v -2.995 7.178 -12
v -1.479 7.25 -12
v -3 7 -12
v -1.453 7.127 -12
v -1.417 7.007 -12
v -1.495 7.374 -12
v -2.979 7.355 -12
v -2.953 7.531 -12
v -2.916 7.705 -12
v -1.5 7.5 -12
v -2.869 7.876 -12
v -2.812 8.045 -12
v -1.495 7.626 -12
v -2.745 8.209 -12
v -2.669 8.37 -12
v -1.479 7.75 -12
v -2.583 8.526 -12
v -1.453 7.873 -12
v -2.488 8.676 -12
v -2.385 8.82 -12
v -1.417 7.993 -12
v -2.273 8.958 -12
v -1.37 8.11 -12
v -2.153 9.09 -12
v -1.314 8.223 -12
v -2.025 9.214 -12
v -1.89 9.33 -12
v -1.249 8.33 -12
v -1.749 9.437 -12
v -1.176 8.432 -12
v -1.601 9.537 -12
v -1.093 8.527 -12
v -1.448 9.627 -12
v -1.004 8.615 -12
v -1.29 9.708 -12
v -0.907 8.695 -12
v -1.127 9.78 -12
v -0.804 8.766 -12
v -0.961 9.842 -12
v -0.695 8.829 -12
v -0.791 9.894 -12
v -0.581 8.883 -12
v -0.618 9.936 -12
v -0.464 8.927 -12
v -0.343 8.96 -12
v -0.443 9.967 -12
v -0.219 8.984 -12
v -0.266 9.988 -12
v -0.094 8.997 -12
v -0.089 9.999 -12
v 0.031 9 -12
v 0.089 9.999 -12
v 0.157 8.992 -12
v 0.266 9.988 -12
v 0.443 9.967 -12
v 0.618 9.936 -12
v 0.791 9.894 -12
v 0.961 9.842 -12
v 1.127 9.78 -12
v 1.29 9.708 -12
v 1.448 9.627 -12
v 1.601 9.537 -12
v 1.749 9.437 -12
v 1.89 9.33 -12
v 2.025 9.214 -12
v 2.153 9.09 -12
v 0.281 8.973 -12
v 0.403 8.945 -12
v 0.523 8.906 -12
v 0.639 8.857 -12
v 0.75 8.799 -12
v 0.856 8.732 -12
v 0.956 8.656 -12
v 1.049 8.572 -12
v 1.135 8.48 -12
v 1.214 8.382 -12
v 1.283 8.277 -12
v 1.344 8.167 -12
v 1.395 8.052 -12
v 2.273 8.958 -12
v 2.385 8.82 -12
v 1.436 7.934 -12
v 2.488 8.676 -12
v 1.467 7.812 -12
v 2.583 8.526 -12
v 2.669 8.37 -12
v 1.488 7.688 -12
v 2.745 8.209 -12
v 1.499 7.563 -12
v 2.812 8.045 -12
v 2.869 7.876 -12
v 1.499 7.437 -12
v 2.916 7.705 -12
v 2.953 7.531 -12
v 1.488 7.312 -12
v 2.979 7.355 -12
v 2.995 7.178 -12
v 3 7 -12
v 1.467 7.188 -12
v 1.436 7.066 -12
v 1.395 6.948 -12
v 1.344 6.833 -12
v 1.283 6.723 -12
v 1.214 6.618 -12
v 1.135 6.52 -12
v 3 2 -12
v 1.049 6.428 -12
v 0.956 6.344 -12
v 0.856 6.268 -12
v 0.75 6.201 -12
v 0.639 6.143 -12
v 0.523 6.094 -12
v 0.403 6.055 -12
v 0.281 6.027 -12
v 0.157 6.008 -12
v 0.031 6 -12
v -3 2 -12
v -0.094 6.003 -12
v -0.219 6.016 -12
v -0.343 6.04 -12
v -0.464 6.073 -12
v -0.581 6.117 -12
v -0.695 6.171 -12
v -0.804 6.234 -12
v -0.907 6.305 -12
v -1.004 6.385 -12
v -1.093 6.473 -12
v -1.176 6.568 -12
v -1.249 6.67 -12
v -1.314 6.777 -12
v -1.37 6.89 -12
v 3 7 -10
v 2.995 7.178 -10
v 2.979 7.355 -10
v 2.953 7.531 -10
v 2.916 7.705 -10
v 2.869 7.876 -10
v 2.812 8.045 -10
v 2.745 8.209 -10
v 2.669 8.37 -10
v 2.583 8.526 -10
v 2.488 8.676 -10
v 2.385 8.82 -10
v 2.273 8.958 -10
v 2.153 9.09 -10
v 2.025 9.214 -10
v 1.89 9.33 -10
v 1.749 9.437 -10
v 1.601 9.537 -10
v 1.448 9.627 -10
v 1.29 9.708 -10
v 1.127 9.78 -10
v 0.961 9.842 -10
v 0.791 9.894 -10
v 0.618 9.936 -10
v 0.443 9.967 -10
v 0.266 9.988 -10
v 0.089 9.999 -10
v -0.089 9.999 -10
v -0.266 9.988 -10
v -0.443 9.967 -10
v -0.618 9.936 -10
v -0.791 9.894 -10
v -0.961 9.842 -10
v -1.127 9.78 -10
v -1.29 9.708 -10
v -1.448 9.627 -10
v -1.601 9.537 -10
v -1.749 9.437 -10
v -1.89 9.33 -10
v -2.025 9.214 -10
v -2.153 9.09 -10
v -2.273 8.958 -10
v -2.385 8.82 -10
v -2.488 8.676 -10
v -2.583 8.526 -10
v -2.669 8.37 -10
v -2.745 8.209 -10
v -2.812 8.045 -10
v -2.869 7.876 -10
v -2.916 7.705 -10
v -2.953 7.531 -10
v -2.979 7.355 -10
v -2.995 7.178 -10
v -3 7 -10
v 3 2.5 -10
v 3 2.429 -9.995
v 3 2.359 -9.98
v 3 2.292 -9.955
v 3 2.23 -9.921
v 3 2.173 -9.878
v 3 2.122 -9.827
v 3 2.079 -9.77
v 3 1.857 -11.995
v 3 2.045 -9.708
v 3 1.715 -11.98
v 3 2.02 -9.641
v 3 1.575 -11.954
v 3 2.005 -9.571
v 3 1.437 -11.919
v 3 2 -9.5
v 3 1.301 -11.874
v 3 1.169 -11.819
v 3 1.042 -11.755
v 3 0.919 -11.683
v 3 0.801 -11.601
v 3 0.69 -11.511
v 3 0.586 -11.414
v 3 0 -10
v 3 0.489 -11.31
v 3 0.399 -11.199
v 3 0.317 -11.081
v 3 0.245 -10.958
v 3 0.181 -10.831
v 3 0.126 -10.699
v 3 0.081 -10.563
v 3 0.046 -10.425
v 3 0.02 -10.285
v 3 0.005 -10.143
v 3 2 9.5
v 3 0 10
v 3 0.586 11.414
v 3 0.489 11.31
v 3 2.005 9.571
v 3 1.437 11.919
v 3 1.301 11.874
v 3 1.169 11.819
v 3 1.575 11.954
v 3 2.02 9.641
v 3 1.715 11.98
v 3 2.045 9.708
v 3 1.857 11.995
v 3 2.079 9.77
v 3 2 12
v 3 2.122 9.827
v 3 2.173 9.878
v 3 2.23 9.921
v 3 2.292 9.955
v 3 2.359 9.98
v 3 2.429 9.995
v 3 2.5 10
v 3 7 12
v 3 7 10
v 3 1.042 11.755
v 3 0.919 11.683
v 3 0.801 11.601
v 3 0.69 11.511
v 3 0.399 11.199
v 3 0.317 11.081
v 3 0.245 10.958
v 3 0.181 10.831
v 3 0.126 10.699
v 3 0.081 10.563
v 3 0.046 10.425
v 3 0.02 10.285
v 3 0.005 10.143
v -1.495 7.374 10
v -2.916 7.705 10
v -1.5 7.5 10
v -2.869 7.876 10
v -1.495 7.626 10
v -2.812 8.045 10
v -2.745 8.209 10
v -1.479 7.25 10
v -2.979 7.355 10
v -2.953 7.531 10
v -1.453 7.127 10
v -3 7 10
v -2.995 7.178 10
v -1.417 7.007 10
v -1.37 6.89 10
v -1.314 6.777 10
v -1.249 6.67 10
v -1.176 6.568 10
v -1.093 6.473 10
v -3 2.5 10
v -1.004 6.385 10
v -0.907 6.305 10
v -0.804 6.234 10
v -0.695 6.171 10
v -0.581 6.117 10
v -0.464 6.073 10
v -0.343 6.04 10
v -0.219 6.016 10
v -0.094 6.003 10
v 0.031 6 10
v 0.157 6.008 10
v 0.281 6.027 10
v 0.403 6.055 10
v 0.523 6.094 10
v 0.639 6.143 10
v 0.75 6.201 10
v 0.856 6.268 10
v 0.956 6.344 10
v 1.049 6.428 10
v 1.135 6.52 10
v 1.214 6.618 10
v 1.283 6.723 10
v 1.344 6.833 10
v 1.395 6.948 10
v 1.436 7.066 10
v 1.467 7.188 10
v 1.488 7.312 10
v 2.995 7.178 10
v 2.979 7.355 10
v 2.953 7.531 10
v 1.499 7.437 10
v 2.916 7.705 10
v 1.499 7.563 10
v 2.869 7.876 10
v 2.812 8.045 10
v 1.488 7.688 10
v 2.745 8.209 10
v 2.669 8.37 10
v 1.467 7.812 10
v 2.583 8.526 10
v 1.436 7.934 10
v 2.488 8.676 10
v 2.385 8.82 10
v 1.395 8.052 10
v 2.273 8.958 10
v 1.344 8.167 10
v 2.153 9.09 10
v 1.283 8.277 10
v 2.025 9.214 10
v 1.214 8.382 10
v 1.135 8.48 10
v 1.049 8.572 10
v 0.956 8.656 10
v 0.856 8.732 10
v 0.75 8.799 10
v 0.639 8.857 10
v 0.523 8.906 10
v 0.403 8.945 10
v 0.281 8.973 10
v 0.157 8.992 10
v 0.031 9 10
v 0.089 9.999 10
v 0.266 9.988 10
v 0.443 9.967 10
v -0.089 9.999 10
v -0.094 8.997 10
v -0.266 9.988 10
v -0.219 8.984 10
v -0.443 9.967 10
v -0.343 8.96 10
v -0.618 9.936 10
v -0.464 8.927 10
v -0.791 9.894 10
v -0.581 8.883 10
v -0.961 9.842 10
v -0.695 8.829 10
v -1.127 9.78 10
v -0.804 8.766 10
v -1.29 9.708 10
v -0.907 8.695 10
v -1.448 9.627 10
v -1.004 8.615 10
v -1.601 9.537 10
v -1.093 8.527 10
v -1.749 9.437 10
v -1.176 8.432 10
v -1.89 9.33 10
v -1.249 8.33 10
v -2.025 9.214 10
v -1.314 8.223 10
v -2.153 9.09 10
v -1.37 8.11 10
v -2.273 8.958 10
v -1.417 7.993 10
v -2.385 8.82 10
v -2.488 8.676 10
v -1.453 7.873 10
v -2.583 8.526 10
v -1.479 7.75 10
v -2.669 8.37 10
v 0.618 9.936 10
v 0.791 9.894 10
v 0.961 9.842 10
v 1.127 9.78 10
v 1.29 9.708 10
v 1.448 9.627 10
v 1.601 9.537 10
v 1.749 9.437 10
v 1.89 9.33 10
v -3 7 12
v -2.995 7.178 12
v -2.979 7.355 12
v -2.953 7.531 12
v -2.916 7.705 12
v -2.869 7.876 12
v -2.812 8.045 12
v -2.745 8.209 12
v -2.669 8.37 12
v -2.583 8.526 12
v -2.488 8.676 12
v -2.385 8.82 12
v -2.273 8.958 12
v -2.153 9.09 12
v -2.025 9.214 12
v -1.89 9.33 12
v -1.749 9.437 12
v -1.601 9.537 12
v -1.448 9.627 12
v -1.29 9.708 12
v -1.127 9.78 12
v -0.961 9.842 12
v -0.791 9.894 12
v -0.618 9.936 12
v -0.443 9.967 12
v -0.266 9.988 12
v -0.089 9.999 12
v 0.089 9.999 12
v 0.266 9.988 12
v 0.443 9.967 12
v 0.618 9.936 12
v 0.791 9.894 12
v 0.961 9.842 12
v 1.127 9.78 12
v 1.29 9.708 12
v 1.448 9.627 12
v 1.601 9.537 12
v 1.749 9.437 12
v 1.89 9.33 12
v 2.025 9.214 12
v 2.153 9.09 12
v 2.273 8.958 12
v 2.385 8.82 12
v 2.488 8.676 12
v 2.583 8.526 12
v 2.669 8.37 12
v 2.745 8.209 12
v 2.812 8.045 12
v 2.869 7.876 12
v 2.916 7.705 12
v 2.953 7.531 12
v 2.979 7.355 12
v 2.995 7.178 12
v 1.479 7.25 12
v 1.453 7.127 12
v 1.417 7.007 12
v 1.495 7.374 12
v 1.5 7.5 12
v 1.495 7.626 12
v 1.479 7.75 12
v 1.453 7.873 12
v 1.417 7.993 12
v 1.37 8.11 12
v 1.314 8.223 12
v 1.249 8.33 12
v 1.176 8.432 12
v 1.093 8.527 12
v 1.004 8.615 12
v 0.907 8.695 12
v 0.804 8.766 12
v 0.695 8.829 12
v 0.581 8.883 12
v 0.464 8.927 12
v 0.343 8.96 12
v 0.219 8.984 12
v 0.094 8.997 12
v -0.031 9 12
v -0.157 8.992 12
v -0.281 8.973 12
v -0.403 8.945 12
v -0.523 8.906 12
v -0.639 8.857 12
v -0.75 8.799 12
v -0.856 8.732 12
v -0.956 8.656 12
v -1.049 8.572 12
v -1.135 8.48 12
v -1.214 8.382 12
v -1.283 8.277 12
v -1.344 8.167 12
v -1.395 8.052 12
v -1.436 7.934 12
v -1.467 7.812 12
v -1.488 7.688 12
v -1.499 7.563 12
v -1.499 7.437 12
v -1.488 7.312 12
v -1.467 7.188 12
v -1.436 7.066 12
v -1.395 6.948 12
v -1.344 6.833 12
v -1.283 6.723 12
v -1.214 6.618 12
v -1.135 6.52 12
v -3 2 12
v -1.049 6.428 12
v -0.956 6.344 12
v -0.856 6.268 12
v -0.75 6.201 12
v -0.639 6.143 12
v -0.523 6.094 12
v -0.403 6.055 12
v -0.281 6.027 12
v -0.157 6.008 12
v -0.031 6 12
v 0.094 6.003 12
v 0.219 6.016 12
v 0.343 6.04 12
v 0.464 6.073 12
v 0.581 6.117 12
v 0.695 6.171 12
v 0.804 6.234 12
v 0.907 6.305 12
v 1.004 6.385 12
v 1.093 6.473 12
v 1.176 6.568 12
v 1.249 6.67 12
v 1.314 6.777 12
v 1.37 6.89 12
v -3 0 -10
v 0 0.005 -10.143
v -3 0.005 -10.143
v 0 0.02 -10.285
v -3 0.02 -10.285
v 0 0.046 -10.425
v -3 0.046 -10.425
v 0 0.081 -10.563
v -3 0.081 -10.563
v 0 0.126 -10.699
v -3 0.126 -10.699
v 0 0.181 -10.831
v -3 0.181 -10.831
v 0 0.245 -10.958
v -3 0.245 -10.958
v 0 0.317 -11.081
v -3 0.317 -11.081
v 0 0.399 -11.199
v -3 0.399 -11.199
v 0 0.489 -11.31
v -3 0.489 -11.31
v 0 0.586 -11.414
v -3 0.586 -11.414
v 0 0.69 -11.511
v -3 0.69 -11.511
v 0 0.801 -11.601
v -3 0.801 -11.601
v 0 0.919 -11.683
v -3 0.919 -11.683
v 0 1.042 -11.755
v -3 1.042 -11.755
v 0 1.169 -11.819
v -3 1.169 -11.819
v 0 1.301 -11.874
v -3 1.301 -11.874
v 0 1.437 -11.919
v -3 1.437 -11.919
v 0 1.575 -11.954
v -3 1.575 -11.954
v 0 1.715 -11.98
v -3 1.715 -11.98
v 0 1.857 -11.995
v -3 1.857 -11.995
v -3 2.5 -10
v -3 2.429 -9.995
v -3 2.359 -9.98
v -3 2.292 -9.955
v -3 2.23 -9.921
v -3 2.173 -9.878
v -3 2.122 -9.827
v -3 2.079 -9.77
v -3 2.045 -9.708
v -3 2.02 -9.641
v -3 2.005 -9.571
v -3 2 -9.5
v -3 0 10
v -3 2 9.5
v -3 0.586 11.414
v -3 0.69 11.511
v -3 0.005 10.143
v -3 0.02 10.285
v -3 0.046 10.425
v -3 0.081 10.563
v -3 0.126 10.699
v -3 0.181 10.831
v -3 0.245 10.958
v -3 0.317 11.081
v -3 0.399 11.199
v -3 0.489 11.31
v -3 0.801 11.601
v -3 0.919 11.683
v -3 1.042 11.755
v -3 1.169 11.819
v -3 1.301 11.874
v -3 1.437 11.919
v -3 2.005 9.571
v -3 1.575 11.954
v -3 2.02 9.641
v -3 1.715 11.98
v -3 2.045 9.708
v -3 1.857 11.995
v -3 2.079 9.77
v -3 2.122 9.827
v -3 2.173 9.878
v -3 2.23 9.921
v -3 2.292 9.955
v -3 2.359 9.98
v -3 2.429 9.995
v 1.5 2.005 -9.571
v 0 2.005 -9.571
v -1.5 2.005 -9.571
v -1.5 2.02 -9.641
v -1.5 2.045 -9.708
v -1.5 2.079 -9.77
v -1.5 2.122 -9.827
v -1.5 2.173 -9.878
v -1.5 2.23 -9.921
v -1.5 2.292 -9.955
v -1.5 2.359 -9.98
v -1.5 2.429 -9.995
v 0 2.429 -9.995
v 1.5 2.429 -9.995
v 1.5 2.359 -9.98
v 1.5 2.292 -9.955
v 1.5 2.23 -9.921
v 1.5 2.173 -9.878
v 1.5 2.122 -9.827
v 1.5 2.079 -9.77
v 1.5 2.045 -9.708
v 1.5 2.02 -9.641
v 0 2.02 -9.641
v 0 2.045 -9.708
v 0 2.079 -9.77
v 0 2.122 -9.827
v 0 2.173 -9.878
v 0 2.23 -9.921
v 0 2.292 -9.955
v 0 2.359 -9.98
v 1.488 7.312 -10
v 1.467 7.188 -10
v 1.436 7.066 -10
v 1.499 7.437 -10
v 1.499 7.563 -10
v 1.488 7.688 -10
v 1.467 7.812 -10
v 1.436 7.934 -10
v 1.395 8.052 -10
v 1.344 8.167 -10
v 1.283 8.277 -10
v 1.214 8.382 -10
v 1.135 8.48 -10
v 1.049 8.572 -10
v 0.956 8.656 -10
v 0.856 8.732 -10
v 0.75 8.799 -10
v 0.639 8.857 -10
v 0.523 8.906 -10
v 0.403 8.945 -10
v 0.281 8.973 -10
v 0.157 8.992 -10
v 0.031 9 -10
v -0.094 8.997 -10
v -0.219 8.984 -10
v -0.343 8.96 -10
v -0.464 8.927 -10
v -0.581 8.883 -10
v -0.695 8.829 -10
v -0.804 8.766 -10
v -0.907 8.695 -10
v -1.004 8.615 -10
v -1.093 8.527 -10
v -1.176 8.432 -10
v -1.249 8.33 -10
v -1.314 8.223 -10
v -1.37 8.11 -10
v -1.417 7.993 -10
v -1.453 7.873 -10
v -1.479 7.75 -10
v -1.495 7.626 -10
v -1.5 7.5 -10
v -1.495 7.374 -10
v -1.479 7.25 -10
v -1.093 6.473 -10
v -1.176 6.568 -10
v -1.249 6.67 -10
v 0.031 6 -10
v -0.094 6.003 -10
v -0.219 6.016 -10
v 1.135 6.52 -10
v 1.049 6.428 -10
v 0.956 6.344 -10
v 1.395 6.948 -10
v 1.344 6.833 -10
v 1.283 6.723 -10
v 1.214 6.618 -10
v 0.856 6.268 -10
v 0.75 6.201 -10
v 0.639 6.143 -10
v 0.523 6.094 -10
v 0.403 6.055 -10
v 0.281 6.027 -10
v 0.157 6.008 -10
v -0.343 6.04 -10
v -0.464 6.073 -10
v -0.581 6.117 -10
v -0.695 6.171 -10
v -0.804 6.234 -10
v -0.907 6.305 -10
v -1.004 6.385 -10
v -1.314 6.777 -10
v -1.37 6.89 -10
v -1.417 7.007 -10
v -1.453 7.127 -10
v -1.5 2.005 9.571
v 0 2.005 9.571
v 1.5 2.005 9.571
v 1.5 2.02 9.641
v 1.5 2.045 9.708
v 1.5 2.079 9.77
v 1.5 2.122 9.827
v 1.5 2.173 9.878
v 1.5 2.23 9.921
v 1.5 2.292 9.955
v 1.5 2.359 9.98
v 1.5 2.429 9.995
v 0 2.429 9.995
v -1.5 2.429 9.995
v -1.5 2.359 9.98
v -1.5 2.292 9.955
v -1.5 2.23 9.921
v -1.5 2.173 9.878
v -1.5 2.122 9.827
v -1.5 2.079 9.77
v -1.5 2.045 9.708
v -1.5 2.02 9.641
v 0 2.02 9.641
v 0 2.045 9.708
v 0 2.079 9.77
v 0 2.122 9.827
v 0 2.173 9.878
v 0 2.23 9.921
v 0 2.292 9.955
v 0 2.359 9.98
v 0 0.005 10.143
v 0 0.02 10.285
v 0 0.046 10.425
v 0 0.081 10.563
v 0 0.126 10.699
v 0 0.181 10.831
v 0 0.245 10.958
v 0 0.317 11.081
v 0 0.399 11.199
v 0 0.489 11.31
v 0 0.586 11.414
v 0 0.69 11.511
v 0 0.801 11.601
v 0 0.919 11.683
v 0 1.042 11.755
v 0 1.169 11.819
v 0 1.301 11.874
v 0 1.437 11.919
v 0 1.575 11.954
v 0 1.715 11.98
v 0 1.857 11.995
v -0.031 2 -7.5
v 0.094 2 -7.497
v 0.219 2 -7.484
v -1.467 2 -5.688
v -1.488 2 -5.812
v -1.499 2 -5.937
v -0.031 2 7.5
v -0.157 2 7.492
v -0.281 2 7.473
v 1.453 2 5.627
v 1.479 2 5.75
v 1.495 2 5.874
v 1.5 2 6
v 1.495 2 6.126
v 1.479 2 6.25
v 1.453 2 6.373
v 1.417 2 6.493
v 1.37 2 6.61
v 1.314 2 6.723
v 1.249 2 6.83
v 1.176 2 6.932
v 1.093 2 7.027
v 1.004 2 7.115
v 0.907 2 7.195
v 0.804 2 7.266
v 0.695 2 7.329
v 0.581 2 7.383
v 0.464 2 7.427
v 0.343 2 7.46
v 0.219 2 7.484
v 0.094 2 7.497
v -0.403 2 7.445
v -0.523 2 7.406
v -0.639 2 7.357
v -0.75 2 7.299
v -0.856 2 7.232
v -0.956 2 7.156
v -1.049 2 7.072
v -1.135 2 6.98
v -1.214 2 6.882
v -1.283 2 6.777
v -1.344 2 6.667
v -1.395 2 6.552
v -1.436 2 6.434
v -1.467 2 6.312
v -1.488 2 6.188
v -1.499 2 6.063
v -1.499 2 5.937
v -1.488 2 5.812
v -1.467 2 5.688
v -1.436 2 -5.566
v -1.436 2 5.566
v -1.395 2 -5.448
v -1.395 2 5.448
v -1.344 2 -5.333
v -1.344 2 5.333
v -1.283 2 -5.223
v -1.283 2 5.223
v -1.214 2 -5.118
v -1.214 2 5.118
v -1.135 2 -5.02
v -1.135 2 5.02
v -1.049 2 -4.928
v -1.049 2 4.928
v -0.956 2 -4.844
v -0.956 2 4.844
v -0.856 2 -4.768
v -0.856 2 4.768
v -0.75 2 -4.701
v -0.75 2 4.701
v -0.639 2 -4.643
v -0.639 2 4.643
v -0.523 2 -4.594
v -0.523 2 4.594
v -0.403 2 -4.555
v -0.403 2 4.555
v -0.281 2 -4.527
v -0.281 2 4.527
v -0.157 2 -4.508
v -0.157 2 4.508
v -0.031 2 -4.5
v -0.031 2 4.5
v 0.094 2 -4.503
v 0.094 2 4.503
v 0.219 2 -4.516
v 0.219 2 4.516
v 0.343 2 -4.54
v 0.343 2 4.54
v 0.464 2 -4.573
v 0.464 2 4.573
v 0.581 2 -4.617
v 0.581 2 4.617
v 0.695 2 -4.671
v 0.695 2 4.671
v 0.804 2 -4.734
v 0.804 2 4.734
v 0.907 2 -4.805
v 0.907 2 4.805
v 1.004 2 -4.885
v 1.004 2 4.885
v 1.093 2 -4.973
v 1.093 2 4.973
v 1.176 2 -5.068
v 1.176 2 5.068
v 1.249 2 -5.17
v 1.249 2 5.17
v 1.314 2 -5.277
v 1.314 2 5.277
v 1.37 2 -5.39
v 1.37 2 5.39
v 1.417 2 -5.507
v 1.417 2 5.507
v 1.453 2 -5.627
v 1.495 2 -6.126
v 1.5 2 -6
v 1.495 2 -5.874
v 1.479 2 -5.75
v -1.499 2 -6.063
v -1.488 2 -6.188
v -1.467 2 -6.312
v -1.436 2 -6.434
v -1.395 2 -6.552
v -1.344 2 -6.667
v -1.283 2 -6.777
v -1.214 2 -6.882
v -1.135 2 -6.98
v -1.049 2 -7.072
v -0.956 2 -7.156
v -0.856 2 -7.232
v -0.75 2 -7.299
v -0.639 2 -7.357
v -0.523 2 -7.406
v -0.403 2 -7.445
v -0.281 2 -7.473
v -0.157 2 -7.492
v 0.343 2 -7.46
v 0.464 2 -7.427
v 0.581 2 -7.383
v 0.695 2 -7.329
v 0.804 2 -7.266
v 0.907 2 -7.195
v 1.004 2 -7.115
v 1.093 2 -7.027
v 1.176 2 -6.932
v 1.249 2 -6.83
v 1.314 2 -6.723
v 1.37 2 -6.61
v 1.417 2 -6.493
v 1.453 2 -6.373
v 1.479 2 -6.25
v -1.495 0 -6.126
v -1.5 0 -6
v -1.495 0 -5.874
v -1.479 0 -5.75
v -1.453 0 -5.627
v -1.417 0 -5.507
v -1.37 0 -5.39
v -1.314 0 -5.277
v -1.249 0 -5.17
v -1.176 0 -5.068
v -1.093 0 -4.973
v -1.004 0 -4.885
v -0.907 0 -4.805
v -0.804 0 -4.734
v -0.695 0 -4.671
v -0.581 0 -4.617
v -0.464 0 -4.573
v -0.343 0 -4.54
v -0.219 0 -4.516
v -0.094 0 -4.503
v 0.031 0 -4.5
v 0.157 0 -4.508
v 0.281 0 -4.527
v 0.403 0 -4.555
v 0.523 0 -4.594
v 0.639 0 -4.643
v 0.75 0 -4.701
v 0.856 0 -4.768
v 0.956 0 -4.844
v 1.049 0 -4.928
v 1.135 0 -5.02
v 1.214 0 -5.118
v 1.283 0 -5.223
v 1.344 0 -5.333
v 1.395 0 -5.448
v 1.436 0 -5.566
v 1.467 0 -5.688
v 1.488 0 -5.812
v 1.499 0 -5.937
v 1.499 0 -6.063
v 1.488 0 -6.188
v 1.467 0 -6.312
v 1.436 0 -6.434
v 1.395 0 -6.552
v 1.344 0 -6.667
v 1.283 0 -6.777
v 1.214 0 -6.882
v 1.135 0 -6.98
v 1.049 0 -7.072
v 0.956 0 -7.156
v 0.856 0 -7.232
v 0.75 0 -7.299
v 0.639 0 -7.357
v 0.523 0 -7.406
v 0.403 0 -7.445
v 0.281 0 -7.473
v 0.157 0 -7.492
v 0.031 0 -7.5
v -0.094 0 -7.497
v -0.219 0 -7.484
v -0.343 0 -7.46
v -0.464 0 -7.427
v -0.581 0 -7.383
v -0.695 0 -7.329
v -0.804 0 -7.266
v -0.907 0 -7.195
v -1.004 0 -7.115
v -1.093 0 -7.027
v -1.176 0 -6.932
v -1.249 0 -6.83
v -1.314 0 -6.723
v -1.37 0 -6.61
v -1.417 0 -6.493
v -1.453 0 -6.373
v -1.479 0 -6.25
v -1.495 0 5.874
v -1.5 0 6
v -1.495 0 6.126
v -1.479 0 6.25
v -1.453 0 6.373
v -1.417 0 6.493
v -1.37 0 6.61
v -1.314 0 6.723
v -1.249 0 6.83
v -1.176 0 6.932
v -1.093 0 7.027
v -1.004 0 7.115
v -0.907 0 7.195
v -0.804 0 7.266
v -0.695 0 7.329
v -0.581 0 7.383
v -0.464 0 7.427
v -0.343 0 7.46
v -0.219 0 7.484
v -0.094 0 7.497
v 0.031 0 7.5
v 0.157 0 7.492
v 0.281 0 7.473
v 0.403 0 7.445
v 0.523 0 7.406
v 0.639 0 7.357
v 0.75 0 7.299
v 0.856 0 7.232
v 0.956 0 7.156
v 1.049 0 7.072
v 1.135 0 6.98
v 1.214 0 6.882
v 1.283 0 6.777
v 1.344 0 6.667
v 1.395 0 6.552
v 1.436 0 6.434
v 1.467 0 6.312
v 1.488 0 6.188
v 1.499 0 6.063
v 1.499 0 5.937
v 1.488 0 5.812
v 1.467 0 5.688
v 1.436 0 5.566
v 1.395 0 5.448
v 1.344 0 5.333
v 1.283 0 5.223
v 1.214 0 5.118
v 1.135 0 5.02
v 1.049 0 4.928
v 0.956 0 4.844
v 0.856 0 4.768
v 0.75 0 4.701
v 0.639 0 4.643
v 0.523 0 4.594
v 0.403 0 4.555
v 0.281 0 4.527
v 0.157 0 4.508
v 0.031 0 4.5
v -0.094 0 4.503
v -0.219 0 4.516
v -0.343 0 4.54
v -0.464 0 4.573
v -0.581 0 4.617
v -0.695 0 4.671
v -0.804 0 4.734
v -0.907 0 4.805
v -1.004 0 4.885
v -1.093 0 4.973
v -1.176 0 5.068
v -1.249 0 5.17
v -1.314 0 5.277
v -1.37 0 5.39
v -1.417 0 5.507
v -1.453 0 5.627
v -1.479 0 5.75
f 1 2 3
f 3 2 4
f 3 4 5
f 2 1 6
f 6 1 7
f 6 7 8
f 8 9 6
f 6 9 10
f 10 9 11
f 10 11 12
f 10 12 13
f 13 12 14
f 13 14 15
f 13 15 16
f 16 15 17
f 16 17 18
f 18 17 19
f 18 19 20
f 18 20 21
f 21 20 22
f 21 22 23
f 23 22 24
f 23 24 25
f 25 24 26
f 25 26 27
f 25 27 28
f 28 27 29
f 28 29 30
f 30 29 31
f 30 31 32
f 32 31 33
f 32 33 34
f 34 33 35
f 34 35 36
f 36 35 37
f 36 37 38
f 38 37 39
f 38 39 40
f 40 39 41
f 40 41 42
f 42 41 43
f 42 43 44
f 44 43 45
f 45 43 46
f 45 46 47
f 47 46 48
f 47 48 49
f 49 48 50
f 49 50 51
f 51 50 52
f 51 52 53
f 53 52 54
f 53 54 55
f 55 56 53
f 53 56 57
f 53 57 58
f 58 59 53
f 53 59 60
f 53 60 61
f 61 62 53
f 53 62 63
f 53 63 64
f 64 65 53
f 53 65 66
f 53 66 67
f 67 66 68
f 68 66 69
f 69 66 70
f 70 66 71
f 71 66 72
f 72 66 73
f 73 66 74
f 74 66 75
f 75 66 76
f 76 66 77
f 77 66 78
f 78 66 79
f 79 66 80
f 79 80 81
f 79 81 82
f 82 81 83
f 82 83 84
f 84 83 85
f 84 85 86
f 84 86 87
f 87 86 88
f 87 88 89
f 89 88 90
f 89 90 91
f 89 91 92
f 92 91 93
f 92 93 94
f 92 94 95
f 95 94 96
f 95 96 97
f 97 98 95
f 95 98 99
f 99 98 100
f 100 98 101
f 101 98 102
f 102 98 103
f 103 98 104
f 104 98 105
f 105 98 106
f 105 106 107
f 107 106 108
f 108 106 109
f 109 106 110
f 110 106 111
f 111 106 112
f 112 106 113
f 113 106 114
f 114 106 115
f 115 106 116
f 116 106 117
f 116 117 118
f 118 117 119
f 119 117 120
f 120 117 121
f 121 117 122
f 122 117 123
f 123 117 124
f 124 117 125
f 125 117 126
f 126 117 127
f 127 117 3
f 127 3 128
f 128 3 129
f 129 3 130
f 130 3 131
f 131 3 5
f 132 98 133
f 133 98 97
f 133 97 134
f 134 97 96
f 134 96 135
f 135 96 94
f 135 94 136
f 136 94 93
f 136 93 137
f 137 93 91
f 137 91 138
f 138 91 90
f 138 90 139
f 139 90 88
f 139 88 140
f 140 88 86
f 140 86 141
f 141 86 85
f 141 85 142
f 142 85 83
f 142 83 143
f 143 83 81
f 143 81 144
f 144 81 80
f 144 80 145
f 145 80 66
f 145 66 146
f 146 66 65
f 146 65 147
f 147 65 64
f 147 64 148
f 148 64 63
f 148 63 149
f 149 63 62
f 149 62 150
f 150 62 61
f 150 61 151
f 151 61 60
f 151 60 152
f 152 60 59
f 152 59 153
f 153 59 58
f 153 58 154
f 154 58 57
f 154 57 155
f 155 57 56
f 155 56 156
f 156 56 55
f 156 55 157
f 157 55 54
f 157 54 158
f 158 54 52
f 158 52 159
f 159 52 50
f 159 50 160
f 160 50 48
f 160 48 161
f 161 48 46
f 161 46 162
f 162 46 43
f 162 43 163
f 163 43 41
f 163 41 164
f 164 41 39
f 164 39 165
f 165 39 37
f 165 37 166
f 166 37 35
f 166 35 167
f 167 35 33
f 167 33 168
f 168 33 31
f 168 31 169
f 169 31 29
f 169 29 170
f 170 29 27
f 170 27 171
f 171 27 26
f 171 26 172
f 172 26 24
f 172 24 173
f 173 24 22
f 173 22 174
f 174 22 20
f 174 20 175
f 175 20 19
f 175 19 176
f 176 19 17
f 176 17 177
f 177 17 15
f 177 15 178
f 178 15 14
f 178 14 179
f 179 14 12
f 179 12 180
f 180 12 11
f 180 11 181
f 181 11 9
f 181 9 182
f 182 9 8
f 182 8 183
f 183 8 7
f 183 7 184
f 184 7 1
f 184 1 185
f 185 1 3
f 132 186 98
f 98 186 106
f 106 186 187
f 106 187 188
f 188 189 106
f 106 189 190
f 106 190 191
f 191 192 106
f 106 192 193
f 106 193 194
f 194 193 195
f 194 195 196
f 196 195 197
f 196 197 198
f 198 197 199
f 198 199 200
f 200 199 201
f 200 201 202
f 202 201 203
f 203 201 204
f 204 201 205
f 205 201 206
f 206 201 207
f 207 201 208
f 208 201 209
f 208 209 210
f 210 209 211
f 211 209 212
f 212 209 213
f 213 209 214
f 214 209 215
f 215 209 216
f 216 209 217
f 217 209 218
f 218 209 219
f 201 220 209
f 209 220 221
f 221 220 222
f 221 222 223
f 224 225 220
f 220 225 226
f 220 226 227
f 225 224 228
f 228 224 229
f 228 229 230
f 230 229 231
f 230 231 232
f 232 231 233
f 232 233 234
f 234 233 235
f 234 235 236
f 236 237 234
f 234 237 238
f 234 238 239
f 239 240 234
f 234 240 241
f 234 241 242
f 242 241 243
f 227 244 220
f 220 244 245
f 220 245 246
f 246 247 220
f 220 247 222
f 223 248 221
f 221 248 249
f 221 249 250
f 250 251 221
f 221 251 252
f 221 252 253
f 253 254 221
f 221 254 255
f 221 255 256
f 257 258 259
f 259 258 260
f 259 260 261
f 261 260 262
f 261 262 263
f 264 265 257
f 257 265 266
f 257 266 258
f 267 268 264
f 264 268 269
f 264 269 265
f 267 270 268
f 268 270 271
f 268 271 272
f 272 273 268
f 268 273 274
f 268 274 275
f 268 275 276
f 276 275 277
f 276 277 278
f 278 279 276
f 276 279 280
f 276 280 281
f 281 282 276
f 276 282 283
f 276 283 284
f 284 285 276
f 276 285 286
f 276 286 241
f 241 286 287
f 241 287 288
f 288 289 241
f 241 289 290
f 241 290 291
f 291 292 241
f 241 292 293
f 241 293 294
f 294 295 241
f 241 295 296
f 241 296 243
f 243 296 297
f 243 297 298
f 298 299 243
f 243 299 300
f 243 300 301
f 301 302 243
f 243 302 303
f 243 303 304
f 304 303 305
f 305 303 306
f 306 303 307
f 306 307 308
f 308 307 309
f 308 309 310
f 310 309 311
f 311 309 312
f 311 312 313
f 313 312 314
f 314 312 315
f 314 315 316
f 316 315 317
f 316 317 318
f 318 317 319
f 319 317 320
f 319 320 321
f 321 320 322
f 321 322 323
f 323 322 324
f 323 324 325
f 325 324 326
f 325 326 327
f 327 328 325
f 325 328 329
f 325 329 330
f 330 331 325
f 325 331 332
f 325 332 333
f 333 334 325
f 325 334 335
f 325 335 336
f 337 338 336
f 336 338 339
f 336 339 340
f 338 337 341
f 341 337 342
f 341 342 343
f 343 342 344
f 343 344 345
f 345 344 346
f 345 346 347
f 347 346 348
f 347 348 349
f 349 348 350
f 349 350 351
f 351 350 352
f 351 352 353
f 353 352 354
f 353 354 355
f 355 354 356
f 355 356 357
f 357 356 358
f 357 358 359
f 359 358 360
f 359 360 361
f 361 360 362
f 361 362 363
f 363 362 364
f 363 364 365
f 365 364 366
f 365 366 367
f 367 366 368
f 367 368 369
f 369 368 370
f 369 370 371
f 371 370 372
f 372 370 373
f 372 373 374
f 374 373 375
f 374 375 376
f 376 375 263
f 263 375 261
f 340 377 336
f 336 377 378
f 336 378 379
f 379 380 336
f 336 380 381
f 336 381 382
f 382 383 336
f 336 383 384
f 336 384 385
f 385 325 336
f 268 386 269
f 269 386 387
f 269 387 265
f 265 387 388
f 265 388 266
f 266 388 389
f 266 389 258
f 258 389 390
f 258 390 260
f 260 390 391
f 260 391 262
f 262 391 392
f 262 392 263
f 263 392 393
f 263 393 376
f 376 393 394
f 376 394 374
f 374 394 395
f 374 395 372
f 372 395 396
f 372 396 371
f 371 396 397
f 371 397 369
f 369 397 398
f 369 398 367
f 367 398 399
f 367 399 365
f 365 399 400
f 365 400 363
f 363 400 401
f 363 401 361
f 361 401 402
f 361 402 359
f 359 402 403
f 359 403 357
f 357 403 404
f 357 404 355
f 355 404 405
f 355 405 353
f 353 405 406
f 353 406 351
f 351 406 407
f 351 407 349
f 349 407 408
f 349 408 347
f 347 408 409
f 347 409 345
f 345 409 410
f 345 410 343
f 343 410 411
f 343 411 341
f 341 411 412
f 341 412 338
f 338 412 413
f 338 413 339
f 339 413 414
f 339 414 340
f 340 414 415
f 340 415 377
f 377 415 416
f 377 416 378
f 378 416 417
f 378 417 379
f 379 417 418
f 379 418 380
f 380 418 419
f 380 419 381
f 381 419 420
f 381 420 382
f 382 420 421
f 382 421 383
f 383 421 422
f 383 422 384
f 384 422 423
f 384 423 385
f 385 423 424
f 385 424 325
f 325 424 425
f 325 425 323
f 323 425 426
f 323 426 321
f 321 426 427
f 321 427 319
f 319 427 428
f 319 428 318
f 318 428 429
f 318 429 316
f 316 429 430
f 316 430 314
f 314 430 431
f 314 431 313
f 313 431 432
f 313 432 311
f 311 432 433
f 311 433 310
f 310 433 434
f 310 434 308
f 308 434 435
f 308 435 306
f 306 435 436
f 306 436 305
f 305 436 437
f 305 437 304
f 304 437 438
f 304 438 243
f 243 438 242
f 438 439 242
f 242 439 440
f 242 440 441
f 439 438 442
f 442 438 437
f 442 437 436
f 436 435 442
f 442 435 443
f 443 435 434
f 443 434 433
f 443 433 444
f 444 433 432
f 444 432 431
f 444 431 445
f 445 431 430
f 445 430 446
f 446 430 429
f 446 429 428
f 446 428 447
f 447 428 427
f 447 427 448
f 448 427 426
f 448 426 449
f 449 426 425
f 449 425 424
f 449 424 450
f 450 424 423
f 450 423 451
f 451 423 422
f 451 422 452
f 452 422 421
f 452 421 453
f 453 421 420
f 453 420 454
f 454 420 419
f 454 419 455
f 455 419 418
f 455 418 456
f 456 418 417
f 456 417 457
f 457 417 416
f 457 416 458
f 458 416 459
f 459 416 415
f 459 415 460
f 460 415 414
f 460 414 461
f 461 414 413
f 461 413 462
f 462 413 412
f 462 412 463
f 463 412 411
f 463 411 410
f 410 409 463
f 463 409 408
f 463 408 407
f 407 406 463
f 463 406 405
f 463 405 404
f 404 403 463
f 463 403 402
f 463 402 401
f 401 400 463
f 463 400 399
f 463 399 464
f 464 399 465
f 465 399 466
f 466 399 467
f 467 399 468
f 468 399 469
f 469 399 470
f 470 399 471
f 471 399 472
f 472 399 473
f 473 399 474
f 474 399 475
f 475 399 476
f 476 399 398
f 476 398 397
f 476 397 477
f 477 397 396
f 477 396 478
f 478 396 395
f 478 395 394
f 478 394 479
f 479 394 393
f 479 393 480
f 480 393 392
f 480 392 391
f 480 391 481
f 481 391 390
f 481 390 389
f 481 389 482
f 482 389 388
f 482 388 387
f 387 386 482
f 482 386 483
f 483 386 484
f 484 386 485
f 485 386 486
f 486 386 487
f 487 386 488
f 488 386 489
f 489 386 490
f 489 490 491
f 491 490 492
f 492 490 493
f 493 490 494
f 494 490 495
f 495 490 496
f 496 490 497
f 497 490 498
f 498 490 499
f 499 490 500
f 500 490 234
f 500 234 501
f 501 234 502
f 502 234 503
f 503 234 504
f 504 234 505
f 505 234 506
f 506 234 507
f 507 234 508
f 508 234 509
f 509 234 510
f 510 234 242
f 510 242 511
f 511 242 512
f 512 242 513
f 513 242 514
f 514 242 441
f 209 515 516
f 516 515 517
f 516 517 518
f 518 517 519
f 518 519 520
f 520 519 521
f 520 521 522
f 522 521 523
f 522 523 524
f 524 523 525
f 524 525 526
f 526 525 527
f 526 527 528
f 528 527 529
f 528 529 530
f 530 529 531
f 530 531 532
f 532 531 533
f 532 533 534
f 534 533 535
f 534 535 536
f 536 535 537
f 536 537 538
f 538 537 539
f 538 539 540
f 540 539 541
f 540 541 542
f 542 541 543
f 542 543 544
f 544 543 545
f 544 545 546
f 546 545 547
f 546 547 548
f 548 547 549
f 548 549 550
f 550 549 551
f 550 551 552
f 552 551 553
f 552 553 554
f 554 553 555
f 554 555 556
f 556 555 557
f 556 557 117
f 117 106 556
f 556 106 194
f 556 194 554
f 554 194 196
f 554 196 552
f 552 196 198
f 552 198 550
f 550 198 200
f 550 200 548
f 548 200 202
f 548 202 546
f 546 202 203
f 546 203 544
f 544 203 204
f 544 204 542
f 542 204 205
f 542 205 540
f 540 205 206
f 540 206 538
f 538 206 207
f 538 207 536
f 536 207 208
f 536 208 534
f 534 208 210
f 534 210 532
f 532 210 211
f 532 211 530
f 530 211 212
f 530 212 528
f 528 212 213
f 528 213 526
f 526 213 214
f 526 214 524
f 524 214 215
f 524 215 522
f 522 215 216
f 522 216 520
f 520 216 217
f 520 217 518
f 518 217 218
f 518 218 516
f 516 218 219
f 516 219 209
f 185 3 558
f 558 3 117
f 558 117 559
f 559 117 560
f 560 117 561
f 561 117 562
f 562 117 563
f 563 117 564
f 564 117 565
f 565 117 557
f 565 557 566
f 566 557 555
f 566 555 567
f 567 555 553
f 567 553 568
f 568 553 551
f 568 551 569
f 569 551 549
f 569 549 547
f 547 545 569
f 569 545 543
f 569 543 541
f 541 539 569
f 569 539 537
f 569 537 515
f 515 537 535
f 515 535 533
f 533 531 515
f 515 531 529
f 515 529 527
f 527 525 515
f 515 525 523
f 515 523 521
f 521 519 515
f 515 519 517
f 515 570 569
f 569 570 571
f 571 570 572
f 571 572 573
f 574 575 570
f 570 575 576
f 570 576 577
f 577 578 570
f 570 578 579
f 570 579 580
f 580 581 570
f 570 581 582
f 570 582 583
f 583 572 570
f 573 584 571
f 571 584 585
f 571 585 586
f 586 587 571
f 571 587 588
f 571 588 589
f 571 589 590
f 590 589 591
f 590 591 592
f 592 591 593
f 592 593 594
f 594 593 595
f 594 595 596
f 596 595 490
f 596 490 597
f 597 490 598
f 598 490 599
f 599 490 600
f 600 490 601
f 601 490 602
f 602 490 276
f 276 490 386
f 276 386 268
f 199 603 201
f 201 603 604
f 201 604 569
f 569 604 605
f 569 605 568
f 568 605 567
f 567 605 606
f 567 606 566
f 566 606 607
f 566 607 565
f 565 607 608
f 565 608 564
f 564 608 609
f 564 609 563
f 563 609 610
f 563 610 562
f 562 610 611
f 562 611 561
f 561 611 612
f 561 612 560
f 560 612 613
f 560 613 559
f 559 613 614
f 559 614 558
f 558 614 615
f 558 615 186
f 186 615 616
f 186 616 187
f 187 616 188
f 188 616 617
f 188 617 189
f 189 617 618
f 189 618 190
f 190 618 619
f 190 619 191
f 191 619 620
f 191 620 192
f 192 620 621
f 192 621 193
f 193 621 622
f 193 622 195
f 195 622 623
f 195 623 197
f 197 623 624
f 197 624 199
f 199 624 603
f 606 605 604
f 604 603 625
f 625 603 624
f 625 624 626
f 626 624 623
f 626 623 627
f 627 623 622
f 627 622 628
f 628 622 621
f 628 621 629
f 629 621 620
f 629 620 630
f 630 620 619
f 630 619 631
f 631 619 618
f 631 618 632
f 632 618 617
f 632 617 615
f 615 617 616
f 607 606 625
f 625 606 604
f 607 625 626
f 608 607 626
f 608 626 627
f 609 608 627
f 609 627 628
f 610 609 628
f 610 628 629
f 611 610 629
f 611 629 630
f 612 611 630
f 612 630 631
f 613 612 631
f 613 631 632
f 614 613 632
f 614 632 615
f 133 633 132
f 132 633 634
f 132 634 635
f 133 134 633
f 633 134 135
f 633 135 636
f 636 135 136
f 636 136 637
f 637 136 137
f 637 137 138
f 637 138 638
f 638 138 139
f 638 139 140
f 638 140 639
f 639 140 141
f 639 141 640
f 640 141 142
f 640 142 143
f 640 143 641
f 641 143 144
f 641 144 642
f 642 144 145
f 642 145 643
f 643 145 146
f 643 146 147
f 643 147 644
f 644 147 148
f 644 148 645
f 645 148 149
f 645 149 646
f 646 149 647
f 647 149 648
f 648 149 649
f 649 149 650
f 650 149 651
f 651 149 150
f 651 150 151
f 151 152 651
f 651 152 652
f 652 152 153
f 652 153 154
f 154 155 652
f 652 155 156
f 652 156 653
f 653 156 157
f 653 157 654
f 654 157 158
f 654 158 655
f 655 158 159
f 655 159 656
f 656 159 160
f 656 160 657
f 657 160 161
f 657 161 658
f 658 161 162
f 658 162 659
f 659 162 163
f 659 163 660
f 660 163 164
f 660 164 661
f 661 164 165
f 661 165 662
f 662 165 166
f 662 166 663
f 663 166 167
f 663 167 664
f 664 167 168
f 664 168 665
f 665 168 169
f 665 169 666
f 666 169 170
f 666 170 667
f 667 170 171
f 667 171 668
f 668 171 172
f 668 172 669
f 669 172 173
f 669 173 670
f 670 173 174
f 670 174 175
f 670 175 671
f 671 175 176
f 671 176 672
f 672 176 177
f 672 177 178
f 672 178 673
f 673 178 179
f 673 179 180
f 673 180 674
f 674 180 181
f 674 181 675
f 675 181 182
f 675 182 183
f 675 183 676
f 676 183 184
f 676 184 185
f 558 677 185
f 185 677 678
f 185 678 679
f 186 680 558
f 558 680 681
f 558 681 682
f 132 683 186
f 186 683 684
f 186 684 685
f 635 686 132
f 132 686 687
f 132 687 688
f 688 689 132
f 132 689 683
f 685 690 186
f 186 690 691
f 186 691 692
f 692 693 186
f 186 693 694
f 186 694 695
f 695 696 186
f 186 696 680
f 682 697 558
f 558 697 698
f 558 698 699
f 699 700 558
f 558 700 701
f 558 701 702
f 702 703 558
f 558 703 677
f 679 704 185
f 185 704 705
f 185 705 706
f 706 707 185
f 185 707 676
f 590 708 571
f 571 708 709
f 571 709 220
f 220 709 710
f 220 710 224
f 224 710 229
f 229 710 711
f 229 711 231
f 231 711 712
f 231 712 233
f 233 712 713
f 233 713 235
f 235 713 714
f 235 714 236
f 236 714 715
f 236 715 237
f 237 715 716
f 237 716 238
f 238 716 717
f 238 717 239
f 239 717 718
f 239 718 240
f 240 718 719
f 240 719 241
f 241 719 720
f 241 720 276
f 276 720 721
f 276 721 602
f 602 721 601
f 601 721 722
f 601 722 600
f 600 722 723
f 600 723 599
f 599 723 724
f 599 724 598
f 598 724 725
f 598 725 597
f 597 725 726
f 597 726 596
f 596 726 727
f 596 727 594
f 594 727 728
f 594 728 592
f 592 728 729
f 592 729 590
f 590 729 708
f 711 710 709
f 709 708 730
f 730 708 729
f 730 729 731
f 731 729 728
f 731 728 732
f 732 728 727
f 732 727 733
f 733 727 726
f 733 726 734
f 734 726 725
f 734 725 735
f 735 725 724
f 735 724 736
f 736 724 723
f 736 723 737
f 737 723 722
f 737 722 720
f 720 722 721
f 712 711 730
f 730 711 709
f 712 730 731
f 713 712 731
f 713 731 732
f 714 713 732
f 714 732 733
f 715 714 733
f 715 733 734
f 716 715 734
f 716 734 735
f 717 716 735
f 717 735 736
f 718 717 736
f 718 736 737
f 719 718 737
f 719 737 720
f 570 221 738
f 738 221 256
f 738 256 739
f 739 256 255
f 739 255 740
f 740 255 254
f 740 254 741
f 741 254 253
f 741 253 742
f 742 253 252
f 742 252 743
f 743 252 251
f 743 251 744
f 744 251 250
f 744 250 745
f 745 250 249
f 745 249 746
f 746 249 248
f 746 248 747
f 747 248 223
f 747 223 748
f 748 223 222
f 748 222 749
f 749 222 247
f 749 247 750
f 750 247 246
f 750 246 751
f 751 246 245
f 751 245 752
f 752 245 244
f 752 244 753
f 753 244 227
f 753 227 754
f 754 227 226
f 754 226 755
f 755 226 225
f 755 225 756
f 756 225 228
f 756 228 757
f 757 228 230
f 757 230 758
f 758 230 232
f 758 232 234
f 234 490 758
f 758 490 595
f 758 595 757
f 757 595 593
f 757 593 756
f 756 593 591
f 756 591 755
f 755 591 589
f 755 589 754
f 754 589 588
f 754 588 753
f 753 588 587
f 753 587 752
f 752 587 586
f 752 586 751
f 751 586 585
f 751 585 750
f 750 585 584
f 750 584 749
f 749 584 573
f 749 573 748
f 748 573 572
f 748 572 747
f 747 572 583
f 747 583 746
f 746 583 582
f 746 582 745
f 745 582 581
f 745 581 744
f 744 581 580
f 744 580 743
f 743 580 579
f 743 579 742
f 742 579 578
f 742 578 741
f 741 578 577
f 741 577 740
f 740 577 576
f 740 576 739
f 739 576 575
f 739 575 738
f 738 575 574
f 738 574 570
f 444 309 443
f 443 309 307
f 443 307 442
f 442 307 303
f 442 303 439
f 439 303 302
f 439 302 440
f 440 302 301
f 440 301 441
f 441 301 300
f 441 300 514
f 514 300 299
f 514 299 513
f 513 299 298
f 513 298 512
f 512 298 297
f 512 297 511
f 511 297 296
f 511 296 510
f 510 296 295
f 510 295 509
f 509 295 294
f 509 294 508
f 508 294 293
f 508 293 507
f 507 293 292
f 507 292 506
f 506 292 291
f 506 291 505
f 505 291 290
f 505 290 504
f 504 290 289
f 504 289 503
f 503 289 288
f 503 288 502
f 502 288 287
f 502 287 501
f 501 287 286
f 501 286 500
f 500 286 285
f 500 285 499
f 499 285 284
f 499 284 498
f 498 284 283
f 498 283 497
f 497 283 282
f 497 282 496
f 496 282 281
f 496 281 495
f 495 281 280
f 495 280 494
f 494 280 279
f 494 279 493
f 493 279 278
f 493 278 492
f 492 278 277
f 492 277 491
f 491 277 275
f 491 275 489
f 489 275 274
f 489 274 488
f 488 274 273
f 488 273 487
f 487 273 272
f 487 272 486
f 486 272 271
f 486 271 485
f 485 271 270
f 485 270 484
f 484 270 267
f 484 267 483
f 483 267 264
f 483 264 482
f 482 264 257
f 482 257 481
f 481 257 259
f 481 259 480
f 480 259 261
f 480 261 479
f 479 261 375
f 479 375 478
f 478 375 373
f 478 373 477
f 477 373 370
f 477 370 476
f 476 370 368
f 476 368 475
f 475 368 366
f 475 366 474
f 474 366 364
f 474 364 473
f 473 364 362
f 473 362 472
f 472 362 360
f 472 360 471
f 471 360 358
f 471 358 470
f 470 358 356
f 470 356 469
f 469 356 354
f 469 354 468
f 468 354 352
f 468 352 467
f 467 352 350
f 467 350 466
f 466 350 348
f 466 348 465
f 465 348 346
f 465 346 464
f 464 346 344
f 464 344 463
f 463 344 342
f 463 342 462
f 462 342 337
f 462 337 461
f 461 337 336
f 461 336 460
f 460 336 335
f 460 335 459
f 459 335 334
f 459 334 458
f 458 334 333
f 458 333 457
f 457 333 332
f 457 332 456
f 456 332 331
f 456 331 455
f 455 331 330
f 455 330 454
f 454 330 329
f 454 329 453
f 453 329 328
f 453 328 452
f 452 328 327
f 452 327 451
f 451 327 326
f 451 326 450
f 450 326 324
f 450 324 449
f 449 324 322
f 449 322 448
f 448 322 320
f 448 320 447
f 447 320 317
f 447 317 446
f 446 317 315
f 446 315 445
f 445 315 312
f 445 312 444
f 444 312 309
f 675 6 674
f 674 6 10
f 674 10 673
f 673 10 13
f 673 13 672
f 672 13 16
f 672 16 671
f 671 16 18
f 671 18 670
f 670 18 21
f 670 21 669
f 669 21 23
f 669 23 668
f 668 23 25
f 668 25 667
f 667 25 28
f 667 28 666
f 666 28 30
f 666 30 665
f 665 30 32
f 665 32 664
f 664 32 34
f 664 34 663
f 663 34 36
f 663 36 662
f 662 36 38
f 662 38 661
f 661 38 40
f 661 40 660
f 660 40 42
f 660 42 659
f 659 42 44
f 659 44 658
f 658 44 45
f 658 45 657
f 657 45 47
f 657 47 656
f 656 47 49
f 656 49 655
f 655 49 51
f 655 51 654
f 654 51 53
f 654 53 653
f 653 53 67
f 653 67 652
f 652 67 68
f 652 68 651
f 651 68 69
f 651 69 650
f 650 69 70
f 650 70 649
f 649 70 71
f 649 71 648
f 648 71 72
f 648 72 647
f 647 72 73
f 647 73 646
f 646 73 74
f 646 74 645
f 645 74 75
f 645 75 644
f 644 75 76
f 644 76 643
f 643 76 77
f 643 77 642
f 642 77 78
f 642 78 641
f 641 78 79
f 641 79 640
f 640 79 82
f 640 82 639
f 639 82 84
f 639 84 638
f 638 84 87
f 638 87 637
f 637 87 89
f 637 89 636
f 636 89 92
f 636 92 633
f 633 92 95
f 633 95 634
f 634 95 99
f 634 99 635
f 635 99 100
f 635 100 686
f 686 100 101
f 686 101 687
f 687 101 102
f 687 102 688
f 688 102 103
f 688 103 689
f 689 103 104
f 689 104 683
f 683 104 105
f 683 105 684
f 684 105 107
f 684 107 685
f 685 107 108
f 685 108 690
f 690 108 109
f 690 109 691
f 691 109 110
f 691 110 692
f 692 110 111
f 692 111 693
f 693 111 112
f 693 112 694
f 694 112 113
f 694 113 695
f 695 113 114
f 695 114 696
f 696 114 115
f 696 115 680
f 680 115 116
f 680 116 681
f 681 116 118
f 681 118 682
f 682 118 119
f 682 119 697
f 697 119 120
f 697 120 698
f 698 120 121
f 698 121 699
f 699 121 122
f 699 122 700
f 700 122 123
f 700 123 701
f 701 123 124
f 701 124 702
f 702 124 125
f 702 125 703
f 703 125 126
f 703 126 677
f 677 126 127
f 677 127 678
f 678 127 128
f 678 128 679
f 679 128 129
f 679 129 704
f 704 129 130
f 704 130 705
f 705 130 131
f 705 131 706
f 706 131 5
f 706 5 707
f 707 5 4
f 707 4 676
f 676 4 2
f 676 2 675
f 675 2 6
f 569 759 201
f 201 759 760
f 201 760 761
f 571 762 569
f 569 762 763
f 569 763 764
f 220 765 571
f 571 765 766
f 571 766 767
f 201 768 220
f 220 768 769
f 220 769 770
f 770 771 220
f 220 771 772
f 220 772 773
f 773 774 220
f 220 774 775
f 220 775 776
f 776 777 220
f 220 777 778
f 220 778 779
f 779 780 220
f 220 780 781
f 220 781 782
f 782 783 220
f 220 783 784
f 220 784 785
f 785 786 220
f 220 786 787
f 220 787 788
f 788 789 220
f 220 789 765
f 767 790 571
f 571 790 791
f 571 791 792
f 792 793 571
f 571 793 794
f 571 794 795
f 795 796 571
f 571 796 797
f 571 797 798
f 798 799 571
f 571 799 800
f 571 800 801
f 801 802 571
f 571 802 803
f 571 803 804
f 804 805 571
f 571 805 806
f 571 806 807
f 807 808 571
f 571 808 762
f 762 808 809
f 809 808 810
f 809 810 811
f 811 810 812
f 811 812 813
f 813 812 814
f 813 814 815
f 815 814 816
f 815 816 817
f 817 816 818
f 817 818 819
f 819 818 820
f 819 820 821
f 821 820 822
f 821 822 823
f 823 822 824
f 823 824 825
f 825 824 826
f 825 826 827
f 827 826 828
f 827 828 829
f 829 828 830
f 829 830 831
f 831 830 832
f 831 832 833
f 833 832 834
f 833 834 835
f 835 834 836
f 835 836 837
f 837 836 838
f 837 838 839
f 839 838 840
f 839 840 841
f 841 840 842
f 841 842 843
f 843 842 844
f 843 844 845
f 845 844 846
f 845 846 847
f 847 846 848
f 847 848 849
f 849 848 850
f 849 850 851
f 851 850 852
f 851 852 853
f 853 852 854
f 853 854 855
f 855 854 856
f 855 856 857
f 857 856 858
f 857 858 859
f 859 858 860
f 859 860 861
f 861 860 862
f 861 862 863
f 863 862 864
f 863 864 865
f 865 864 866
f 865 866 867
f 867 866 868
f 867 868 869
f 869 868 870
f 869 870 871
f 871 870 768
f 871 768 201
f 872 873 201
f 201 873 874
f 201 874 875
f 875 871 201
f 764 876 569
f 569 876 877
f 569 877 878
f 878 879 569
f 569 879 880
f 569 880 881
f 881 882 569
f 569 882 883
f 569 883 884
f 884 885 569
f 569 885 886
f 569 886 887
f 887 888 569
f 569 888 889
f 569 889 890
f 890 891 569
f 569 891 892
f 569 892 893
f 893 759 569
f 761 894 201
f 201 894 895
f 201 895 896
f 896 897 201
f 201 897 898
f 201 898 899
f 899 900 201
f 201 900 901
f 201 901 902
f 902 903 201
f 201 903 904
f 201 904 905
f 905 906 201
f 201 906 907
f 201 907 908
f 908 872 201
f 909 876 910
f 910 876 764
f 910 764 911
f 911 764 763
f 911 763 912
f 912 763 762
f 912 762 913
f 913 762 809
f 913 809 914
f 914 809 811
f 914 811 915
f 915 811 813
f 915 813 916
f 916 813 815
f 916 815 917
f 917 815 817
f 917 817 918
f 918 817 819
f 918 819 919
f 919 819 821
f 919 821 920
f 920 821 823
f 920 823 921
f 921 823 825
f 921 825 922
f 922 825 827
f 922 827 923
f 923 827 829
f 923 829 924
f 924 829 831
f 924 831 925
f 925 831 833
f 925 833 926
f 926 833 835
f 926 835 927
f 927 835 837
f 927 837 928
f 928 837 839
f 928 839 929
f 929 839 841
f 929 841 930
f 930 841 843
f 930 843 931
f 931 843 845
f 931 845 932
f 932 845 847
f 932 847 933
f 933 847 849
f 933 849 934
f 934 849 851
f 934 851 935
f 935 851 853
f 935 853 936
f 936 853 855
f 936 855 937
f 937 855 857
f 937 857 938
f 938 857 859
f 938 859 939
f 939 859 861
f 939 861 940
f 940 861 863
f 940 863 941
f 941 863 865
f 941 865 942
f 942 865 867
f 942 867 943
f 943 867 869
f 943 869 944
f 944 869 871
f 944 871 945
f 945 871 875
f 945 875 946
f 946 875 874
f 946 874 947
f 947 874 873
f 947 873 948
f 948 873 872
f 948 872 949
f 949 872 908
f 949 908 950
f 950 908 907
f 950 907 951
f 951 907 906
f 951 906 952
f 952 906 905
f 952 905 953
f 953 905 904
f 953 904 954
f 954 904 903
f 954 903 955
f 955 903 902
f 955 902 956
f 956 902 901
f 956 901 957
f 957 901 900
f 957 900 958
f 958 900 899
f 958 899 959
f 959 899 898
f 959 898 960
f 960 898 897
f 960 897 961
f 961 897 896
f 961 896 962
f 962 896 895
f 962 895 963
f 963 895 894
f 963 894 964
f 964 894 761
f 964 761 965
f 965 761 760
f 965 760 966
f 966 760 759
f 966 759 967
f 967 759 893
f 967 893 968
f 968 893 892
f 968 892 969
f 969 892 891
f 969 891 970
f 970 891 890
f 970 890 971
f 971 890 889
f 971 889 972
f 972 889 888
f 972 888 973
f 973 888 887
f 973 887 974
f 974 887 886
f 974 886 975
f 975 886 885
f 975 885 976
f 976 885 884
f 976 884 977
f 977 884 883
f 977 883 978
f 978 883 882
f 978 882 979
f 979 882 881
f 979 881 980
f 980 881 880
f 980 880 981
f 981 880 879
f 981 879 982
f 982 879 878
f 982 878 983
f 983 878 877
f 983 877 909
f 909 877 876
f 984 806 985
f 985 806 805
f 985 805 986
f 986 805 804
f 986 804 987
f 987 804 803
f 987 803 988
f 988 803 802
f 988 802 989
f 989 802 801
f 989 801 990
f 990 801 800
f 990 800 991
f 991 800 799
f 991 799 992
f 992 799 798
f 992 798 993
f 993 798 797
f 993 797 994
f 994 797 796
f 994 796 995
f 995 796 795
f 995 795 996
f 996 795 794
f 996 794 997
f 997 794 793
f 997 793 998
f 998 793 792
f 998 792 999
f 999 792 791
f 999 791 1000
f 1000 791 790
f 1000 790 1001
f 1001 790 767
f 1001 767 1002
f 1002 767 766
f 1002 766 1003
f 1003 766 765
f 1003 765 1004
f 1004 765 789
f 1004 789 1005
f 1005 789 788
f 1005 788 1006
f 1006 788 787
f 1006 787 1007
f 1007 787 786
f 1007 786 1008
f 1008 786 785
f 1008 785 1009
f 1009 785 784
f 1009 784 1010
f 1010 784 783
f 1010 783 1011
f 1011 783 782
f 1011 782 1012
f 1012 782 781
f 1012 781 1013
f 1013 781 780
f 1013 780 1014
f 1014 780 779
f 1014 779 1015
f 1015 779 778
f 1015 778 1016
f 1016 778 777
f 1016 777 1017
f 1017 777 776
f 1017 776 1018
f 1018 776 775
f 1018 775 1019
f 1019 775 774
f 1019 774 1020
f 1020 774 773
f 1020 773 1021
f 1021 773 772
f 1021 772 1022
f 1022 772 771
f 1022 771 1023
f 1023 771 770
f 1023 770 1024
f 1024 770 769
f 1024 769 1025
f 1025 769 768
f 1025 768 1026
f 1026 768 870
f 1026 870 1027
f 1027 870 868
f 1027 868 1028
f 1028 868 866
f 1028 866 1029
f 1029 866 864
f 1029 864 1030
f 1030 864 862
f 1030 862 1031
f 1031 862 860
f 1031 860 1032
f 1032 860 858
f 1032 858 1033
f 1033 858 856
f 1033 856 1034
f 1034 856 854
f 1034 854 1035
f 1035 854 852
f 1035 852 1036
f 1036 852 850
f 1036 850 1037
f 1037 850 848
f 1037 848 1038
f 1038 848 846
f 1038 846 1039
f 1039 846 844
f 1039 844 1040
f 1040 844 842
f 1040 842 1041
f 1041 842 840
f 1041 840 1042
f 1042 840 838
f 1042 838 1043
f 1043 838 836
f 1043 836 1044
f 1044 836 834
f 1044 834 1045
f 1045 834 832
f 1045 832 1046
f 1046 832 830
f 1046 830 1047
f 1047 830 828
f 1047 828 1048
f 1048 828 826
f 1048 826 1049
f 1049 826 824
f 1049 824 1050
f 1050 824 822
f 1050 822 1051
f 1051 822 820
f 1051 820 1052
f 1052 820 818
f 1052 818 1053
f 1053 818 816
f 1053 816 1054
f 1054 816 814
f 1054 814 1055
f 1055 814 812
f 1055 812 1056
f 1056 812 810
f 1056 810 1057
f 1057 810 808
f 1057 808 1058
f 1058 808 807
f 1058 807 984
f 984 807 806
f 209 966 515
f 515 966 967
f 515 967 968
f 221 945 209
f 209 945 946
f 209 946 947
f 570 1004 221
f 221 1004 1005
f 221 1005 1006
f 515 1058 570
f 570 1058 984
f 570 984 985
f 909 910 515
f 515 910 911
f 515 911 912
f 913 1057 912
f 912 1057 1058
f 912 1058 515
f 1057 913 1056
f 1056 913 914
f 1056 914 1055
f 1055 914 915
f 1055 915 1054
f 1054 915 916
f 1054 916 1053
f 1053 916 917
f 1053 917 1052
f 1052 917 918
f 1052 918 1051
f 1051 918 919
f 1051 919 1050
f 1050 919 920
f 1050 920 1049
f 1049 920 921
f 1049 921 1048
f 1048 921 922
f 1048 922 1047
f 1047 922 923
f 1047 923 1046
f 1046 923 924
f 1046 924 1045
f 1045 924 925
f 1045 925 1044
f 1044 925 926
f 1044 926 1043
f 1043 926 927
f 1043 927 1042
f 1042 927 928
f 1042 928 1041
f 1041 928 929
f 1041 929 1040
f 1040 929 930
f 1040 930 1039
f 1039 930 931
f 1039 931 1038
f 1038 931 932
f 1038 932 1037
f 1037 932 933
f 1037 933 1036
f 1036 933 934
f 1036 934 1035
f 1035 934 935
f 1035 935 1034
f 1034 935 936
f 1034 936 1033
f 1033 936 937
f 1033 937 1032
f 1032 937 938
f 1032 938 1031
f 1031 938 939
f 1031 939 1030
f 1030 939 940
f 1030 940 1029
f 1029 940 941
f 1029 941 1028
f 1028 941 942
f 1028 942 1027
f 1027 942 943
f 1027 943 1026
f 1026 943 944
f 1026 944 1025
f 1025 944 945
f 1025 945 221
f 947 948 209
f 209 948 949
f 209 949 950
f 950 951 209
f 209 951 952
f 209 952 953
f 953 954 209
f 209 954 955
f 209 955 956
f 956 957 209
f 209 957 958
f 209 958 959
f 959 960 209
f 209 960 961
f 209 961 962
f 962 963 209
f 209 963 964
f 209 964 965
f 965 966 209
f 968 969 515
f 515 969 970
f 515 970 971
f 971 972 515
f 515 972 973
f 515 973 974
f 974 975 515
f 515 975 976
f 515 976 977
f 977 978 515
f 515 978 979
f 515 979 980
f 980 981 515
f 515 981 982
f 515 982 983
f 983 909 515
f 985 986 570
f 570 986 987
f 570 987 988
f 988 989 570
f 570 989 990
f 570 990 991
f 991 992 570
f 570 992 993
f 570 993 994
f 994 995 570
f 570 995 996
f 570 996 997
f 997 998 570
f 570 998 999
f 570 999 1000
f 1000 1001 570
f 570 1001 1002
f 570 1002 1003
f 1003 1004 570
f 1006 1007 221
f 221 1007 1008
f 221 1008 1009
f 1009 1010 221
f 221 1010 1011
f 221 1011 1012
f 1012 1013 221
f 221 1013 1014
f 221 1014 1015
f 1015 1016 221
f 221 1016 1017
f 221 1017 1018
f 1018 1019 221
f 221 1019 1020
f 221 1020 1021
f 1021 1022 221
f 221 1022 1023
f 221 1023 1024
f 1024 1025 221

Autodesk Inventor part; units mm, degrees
ref_plane "YZ Plane" through (0, 0, 0) normal (1, 0, 0) x (0, 1, 0)
ref_plane "XZ Plane" through (0, 0, 0) normal (0, 1, 0) x (-1, 0, 0)
ref_plane "XY Plane" through (0, 0, 0) normal (0, 0, 1) x (1, 0, 0)
sketch "スケッチ2" plane through (0, 0, 0) normal (0, 1, 0) x (-1, 0, 0)
  line L0 (3, 12) -> (-3, 12)
  line L1 (-3, 12) -> (-3, -12)
  line L2 (-3, -12) -> (3, -12)
  line L3 (3, -12) -> (3, 12)
  line L4 (3, 12) -> (-3, -12) construction
  line L5 (-3, 12) -> (3, -12) construction
  point P0 (0, 0)
  dimension "d0" = 6
  dimension "d1" = 24
extrude "押し出し1" add sketch "スケッチ2" along normal blind 2
sketch "スケッチ3" plane through (0, 2, 0) normal (0, 1, 0) x (1, 0, 0)
  line L0 (0, 0) -> (17.0927, 0) construction
  circle A0 centre (0, -6) radius 1.5
  circle A1 centre (0, 6) radius 1.5
  dimension "d25" = 3
extrude "押し出し2" cut sketch "スケッチ3" against normal through all
sketch "スケッチ4" plane through (0, 2, 0) normal (0, 1, 0) x (1, 0, 0)
  line L0 (-3, -12) -> (3, -12) projected
  line L1 (3, -12) -> (-3, -12)
  line L2 (-3, -12) -> (-3, -10)
  line L3 (-3, -10) -> (3, -10)
  line L4 (3, -10) -> (3, -12)
  line L5 (0, 0) -> (11.7228, 0) construction
  line L6 (-3, 12) -> (3, 12)
  line L7 (-3, 12) -> (-3, 10)
  line L8 (-3, 10) -> (3, 10)
  line L9 (3, 10) -> (3, 12)
  dimension "d8" = 6
  dimension "d9" = 2
extrude "押し出し3" add sketch "スケッチ4" along normal blind 8
sketch "スケッチ6" plane through (-3, 0, 12) normal (0, 0, 1) x (1, 0, 0)
  circle A0 centre (3, 7.5) radius 1.5
  point P0 (3, 0)
  dimension "d36" = 3
extrude "押し出し4" cut sketch "スケッチ6" against normal through all
fillet "フィレット1" radius 2 1 edges at (0, 0, 12)
fillet "フィレット2" radius 0.5 1 edges at (0, 2, 10)
fillet "フィレット3" radius 0.5 1 edges at (0, 2, -10)
fillet "フィレット4" radius 2 1 edges at (0, 0, -12)
fillet "フィレット5" radius 3 4 edges at (3, 10, 11) (-3, 10, 11) (3, 10, -11) (-3, 10, -11)
properties part number "Plasma Box Hinge"
